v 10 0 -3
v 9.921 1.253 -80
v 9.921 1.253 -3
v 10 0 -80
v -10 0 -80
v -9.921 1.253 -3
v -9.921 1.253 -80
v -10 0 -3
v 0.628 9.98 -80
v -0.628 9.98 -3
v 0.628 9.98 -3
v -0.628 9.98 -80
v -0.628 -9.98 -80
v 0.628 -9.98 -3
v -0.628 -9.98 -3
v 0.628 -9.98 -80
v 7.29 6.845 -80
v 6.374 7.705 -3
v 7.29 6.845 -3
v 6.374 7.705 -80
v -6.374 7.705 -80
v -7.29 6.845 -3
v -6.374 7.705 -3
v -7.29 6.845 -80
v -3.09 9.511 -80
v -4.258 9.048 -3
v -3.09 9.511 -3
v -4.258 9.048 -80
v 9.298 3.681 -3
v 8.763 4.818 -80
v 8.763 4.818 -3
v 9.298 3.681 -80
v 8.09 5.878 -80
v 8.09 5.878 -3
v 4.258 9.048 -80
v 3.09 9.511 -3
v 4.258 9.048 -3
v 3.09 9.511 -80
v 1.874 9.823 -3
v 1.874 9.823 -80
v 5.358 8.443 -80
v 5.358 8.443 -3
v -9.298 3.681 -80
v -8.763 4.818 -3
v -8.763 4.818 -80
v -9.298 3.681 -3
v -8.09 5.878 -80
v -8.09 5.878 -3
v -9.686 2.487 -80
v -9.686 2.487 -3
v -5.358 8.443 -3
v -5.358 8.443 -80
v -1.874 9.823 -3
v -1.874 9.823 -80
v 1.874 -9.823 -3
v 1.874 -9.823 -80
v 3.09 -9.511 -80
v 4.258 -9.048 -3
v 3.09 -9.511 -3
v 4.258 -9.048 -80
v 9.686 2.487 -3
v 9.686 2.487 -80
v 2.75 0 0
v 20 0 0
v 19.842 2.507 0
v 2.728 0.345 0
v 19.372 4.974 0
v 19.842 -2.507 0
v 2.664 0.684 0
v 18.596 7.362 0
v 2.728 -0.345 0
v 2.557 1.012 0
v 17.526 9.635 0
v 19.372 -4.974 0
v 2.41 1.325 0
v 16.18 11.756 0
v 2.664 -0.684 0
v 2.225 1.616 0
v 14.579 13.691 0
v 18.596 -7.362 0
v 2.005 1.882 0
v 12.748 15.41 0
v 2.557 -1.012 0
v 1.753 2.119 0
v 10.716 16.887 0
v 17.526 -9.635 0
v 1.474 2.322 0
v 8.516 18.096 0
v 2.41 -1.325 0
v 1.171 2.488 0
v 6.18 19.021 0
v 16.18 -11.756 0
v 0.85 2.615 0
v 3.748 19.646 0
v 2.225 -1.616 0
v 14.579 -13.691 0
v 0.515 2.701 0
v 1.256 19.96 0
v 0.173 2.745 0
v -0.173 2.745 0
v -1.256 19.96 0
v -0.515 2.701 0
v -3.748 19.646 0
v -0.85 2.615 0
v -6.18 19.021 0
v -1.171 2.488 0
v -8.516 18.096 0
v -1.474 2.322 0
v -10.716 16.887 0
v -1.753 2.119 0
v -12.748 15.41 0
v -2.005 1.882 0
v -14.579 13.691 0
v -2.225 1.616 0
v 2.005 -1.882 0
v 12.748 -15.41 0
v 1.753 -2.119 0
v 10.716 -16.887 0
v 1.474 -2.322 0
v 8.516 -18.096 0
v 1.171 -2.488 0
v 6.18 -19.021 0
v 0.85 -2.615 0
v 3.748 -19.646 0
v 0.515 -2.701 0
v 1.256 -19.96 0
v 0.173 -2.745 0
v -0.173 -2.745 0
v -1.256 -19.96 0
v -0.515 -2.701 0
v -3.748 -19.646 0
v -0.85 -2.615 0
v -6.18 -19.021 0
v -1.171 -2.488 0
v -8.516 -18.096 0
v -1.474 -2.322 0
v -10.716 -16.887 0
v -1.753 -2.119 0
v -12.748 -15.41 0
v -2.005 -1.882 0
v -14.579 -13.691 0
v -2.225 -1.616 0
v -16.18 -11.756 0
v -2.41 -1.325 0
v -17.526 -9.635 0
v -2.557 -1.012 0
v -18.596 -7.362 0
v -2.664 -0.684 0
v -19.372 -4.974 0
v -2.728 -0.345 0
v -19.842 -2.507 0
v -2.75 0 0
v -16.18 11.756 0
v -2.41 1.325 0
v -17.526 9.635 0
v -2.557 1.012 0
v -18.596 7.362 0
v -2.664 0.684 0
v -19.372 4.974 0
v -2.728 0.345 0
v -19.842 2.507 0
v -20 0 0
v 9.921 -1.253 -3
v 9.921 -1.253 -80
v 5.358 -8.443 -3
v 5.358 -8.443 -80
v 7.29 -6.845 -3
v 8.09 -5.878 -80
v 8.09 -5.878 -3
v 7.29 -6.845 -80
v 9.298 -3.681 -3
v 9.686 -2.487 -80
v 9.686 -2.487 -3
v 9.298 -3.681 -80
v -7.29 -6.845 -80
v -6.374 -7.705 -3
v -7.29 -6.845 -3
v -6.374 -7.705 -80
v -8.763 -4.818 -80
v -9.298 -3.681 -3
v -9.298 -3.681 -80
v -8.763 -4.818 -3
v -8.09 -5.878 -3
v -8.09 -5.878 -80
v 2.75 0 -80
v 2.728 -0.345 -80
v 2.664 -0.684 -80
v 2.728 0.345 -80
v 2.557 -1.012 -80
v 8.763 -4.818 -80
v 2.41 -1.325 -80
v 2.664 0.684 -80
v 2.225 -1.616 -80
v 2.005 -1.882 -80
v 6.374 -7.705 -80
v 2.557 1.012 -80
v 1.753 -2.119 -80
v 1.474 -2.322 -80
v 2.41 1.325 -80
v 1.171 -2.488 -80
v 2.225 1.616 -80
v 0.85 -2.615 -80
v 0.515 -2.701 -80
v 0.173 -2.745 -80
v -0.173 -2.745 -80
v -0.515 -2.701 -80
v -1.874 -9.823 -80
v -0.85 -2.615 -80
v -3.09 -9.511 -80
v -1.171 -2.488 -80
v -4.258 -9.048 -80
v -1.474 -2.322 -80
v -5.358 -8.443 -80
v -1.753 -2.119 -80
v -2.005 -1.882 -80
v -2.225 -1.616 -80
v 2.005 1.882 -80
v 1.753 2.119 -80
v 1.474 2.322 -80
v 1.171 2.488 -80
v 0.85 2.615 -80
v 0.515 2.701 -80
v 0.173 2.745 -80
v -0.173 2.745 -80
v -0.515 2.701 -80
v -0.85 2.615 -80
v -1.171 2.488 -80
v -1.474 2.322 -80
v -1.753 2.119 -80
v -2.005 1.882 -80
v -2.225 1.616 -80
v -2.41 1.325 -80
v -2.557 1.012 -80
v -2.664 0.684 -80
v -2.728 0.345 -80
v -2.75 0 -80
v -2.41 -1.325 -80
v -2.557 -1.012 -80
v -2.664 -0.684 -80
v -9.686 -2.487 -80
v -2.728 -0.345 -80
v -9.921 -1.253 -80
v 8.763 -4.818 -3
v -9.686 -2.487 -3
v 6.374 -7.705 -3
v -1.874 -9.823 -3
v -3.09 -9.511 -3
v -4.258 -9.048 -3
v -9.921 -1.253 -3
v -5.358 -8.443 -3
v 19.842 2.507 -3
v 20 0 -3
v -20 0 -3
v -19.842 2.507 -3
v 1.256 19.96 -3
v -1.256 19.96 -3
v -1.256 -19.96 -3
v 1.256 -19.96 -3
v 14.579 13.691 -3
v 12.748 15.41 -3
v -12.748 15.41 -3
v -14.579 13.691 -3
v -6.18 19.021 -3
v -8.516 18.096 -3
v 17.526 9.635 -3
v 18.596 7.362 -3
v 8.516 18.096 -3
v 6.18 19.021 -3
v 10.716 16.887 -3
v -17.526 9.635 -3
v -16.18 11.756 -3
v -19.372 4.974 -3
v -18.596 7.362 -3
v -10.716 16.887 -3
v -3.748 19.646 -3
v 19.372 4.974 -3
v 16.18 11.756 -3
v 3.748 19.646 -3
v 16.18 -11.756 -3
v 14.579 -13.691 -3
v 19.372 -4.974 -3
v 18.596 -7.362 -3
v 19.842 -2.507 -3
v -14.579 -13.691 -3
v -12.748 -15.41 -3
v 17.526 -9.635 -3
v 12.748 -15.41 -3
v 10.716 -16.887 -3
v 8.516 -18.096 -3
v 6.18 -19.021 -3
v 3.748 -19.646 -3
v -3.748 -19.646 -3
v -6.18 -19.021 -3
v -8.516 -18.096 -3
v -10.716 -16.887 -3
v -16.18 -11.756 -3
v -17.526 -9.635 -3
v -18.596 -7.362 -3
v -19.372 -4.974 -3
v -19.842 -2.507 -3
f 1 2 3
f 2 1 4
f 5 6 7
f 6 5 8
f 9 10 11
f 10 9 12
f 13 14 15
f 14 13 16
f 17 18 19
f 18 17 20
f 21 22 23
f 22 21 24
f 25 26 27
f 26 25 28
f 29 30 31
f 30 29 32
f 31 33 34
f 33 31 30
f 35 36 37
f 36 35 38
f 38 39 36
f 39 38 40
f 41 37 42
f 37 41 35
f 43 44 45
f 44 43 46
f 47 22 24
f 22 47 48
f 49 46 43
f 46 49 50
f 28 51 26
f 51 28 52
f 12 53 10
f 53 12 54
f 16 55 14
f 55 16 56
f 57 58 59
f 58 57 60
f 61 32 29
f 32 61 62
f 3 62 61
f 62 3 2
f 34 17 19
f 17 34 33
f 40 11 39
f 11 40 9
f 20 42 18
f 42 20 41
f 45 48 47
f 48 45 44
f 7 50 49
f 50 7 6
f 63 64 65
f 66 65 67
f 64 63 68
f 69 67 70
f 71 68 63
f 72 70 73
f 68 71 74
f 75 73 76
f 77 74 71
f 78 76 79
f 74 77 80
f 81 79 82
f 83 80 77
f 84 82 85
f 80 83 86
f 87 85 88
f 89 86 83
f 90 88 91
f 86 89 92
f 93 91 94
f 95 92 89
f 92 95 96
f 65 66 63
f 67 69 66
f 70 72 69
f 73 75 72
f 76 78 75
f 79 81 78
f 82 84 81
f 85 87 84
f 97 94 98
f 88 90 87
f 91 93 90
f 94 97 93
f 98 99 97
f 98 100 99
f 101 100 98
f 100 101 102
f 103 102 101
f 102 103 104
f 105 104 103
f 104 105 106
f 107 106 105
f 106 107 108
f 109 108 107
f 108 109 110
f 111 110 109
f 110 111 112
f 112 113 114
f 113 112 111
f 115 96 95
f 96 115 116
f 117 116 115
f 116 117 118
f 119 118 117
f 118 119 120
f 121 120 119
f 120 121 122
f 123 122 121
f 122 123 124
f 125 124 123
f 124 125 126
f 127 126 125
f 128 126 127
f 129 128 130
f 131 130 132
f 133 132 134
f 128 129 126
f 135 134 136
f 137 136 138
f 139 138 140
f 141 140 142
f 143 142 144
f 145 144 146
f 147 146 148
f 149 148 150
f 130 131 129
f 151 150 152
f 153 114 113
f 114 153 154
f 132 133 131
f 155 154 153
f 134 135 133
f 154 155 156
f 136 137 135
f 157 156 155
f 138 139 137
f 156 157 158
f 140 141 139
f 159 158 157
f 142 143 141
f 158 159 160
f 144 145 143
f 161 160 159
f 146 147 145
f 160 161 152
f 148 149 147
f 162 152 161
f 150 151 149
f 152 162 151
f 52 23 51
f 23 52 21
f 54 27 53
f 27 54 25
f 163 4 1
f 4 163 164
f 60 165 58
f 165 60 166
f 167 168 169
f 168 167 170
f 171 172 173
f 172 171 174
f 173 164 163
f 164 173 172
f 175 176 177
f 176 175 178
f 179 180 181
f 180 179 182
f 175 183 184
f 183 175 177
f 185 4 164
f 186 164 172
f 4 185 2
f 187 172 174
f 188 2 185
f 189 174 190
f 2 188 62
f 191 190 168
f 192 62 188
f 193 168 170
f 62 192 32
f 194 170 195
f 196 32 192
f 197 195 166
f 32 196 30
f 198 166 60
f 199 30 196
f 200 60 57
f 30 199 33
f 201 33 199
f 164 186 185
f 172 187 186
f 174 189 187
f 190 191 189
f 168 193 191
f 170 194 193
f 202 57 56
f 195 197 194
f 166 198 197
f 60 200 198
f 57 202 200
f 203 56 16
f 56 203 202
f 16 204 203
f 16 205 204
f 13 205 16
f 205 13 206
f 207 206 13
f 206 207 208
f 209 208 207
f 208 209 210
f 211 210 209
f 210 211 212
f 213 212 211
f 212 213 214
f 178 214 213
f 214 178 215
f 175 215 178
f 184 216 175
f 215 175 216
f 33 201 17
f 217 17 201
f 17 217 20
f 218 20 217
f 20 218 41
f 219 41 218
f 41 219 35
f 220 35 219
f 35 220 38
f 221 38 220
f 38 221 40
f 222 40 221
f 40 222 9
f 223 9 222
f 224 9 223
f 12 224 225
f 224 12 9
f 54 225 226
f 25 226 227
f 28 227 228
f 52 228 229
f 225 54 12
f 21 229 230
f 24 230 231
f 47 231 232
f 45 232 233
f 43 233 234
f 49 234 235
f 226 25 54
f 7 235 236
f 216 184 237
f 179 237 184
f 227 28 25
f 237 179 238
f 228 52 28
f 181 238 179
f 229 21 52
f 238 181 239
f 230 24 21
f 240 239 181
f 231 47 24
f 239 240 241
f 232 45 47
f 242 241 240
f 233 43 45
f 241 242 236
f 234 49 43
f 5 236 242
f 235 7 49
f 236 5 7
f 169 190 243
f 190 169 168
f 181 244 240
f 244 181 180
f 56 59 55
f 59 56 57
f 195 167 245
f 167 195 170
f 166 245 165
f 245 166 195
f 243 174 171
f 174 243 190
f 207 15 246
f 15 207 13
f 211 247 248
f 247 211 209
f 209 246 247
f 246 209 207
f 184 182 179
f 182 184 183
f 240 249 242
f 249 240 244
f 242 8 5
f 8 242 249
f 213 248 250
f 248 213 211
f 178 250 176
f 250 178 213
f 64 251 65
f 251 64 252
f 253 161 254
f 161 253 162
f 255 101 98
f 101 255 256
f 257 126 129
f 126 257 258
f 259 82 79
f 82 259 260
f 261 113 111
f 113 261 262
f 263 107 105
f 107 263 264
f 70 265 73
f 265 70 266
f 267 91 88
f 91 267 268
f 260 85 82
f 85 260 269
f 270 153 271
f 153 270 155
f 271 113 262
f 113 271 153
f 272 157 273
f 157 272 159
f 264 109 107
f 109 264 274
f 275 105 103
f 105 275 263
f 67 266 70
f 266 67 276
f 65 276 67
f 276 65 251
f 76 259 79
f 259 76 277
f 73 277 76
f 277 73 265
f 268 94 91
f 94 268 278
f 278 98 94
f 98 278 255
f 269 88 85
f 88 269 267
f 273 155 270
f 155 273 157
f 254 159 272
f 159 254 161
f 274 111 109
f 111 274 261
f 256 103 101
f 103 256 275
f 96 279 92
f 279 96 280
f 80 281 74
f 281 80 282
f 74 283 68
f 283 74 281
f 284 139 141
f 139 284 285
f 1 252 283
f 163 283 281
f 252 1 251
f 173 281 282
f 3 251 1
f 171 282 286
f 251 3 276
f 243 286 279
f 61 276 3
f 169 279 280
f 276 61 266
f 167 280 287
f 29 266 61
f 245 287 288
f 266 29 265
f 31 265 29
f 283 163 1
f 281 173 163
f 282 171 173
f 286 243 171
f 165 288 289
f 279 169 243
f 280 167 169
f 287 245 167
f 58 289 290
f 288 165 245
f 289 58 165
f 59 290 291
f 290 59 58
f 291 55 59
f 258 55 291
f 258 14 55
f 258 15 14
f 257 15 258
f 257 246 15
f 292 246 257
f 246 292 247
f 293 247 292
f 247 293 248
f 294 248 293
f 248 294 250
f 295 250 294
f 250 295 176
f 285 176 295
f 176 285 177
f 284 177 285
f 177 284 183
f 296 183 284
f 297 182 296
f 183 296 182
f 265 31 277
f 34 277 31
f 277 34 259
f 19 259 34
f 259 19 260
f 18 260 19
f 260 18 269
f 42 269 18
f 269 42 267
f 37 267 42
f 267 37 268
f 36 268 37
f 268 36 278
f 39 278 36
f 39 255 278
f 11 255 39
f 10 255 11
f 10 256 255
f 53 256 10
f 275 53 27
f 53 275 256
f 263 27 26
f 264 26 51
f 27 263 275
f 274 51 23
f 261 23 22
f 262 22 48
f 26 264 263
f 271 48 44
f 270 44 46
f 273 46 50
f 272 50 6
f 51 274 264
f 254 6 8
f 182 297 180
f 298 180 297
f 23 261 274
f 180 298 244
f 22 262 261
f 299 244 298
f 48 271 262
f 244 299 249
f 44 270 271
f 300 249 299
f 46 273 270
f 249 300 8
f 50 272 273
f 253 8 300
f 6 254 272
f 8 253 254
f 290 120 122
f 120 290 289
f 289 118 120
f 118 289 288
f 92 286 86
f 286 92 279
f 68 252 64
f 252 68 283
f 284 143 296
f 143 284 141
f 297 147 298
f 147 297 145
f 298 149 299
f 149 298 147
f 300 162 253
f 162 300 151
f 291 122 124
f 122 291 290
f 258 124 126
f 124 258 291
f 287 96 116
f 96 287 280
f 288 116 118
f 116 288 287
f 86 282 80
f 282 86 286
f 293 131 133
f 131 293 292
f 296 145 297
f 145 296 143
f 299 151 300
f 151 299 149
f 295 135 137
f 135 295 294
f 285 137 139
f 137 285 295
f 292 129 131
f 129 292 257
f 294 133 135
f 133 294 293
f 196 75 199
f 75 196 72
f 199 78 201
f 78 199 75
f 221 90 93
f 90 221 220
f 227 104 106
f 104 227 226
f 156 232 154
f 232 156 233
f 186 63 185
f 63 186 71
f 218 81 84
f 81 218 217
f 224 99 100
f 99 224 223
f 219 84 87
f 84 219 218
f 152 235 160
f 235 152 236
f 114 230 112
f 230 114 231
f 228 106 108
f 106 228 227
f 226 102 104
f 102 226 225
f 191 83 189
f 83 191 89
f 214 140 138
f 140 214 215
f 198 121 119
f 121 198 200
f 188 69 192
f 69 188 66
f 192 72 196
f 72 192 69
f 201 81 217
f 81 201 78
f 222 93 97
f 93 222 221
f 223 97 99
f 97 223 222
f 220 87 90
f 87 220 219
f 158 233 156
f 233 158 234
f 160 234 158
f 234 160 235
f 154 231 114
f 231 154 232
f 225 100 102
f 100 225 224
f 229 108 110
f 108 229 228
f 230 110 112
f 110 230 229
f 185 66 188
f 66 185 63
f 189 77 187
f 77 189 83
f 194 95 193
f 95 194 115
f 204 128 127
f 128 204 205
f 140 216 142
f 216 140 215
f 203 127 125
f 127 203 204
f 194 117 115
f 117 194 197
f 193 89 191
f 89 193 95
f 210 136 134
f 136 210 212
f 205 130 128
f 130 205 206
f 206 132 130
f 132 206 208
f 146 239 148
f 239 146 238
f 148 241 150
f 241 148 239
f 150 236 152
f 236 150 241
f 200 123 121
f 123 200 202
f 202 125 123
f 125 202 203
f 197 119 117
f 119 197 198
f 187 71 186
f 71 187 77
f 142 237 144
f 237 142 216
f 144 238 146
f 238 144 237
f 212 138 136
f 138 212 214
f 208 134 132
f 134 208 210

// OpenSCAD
$fn = 50;


difference() {
	union() {
		translate(v = [0, 0, -80.0000000000]) {
			cylinder(h = 80, r = 10.0000000000);
		}
		translate(v = [0, 0, -3.0000000000]) {
			cylinder(h = 3, r = 20.0000000000);
		}
	}
	union() {
		#translate(v = [0, 0, -80]) {
			cylinder(h = 80, r = 2.7500000000);
		}
	}
}
